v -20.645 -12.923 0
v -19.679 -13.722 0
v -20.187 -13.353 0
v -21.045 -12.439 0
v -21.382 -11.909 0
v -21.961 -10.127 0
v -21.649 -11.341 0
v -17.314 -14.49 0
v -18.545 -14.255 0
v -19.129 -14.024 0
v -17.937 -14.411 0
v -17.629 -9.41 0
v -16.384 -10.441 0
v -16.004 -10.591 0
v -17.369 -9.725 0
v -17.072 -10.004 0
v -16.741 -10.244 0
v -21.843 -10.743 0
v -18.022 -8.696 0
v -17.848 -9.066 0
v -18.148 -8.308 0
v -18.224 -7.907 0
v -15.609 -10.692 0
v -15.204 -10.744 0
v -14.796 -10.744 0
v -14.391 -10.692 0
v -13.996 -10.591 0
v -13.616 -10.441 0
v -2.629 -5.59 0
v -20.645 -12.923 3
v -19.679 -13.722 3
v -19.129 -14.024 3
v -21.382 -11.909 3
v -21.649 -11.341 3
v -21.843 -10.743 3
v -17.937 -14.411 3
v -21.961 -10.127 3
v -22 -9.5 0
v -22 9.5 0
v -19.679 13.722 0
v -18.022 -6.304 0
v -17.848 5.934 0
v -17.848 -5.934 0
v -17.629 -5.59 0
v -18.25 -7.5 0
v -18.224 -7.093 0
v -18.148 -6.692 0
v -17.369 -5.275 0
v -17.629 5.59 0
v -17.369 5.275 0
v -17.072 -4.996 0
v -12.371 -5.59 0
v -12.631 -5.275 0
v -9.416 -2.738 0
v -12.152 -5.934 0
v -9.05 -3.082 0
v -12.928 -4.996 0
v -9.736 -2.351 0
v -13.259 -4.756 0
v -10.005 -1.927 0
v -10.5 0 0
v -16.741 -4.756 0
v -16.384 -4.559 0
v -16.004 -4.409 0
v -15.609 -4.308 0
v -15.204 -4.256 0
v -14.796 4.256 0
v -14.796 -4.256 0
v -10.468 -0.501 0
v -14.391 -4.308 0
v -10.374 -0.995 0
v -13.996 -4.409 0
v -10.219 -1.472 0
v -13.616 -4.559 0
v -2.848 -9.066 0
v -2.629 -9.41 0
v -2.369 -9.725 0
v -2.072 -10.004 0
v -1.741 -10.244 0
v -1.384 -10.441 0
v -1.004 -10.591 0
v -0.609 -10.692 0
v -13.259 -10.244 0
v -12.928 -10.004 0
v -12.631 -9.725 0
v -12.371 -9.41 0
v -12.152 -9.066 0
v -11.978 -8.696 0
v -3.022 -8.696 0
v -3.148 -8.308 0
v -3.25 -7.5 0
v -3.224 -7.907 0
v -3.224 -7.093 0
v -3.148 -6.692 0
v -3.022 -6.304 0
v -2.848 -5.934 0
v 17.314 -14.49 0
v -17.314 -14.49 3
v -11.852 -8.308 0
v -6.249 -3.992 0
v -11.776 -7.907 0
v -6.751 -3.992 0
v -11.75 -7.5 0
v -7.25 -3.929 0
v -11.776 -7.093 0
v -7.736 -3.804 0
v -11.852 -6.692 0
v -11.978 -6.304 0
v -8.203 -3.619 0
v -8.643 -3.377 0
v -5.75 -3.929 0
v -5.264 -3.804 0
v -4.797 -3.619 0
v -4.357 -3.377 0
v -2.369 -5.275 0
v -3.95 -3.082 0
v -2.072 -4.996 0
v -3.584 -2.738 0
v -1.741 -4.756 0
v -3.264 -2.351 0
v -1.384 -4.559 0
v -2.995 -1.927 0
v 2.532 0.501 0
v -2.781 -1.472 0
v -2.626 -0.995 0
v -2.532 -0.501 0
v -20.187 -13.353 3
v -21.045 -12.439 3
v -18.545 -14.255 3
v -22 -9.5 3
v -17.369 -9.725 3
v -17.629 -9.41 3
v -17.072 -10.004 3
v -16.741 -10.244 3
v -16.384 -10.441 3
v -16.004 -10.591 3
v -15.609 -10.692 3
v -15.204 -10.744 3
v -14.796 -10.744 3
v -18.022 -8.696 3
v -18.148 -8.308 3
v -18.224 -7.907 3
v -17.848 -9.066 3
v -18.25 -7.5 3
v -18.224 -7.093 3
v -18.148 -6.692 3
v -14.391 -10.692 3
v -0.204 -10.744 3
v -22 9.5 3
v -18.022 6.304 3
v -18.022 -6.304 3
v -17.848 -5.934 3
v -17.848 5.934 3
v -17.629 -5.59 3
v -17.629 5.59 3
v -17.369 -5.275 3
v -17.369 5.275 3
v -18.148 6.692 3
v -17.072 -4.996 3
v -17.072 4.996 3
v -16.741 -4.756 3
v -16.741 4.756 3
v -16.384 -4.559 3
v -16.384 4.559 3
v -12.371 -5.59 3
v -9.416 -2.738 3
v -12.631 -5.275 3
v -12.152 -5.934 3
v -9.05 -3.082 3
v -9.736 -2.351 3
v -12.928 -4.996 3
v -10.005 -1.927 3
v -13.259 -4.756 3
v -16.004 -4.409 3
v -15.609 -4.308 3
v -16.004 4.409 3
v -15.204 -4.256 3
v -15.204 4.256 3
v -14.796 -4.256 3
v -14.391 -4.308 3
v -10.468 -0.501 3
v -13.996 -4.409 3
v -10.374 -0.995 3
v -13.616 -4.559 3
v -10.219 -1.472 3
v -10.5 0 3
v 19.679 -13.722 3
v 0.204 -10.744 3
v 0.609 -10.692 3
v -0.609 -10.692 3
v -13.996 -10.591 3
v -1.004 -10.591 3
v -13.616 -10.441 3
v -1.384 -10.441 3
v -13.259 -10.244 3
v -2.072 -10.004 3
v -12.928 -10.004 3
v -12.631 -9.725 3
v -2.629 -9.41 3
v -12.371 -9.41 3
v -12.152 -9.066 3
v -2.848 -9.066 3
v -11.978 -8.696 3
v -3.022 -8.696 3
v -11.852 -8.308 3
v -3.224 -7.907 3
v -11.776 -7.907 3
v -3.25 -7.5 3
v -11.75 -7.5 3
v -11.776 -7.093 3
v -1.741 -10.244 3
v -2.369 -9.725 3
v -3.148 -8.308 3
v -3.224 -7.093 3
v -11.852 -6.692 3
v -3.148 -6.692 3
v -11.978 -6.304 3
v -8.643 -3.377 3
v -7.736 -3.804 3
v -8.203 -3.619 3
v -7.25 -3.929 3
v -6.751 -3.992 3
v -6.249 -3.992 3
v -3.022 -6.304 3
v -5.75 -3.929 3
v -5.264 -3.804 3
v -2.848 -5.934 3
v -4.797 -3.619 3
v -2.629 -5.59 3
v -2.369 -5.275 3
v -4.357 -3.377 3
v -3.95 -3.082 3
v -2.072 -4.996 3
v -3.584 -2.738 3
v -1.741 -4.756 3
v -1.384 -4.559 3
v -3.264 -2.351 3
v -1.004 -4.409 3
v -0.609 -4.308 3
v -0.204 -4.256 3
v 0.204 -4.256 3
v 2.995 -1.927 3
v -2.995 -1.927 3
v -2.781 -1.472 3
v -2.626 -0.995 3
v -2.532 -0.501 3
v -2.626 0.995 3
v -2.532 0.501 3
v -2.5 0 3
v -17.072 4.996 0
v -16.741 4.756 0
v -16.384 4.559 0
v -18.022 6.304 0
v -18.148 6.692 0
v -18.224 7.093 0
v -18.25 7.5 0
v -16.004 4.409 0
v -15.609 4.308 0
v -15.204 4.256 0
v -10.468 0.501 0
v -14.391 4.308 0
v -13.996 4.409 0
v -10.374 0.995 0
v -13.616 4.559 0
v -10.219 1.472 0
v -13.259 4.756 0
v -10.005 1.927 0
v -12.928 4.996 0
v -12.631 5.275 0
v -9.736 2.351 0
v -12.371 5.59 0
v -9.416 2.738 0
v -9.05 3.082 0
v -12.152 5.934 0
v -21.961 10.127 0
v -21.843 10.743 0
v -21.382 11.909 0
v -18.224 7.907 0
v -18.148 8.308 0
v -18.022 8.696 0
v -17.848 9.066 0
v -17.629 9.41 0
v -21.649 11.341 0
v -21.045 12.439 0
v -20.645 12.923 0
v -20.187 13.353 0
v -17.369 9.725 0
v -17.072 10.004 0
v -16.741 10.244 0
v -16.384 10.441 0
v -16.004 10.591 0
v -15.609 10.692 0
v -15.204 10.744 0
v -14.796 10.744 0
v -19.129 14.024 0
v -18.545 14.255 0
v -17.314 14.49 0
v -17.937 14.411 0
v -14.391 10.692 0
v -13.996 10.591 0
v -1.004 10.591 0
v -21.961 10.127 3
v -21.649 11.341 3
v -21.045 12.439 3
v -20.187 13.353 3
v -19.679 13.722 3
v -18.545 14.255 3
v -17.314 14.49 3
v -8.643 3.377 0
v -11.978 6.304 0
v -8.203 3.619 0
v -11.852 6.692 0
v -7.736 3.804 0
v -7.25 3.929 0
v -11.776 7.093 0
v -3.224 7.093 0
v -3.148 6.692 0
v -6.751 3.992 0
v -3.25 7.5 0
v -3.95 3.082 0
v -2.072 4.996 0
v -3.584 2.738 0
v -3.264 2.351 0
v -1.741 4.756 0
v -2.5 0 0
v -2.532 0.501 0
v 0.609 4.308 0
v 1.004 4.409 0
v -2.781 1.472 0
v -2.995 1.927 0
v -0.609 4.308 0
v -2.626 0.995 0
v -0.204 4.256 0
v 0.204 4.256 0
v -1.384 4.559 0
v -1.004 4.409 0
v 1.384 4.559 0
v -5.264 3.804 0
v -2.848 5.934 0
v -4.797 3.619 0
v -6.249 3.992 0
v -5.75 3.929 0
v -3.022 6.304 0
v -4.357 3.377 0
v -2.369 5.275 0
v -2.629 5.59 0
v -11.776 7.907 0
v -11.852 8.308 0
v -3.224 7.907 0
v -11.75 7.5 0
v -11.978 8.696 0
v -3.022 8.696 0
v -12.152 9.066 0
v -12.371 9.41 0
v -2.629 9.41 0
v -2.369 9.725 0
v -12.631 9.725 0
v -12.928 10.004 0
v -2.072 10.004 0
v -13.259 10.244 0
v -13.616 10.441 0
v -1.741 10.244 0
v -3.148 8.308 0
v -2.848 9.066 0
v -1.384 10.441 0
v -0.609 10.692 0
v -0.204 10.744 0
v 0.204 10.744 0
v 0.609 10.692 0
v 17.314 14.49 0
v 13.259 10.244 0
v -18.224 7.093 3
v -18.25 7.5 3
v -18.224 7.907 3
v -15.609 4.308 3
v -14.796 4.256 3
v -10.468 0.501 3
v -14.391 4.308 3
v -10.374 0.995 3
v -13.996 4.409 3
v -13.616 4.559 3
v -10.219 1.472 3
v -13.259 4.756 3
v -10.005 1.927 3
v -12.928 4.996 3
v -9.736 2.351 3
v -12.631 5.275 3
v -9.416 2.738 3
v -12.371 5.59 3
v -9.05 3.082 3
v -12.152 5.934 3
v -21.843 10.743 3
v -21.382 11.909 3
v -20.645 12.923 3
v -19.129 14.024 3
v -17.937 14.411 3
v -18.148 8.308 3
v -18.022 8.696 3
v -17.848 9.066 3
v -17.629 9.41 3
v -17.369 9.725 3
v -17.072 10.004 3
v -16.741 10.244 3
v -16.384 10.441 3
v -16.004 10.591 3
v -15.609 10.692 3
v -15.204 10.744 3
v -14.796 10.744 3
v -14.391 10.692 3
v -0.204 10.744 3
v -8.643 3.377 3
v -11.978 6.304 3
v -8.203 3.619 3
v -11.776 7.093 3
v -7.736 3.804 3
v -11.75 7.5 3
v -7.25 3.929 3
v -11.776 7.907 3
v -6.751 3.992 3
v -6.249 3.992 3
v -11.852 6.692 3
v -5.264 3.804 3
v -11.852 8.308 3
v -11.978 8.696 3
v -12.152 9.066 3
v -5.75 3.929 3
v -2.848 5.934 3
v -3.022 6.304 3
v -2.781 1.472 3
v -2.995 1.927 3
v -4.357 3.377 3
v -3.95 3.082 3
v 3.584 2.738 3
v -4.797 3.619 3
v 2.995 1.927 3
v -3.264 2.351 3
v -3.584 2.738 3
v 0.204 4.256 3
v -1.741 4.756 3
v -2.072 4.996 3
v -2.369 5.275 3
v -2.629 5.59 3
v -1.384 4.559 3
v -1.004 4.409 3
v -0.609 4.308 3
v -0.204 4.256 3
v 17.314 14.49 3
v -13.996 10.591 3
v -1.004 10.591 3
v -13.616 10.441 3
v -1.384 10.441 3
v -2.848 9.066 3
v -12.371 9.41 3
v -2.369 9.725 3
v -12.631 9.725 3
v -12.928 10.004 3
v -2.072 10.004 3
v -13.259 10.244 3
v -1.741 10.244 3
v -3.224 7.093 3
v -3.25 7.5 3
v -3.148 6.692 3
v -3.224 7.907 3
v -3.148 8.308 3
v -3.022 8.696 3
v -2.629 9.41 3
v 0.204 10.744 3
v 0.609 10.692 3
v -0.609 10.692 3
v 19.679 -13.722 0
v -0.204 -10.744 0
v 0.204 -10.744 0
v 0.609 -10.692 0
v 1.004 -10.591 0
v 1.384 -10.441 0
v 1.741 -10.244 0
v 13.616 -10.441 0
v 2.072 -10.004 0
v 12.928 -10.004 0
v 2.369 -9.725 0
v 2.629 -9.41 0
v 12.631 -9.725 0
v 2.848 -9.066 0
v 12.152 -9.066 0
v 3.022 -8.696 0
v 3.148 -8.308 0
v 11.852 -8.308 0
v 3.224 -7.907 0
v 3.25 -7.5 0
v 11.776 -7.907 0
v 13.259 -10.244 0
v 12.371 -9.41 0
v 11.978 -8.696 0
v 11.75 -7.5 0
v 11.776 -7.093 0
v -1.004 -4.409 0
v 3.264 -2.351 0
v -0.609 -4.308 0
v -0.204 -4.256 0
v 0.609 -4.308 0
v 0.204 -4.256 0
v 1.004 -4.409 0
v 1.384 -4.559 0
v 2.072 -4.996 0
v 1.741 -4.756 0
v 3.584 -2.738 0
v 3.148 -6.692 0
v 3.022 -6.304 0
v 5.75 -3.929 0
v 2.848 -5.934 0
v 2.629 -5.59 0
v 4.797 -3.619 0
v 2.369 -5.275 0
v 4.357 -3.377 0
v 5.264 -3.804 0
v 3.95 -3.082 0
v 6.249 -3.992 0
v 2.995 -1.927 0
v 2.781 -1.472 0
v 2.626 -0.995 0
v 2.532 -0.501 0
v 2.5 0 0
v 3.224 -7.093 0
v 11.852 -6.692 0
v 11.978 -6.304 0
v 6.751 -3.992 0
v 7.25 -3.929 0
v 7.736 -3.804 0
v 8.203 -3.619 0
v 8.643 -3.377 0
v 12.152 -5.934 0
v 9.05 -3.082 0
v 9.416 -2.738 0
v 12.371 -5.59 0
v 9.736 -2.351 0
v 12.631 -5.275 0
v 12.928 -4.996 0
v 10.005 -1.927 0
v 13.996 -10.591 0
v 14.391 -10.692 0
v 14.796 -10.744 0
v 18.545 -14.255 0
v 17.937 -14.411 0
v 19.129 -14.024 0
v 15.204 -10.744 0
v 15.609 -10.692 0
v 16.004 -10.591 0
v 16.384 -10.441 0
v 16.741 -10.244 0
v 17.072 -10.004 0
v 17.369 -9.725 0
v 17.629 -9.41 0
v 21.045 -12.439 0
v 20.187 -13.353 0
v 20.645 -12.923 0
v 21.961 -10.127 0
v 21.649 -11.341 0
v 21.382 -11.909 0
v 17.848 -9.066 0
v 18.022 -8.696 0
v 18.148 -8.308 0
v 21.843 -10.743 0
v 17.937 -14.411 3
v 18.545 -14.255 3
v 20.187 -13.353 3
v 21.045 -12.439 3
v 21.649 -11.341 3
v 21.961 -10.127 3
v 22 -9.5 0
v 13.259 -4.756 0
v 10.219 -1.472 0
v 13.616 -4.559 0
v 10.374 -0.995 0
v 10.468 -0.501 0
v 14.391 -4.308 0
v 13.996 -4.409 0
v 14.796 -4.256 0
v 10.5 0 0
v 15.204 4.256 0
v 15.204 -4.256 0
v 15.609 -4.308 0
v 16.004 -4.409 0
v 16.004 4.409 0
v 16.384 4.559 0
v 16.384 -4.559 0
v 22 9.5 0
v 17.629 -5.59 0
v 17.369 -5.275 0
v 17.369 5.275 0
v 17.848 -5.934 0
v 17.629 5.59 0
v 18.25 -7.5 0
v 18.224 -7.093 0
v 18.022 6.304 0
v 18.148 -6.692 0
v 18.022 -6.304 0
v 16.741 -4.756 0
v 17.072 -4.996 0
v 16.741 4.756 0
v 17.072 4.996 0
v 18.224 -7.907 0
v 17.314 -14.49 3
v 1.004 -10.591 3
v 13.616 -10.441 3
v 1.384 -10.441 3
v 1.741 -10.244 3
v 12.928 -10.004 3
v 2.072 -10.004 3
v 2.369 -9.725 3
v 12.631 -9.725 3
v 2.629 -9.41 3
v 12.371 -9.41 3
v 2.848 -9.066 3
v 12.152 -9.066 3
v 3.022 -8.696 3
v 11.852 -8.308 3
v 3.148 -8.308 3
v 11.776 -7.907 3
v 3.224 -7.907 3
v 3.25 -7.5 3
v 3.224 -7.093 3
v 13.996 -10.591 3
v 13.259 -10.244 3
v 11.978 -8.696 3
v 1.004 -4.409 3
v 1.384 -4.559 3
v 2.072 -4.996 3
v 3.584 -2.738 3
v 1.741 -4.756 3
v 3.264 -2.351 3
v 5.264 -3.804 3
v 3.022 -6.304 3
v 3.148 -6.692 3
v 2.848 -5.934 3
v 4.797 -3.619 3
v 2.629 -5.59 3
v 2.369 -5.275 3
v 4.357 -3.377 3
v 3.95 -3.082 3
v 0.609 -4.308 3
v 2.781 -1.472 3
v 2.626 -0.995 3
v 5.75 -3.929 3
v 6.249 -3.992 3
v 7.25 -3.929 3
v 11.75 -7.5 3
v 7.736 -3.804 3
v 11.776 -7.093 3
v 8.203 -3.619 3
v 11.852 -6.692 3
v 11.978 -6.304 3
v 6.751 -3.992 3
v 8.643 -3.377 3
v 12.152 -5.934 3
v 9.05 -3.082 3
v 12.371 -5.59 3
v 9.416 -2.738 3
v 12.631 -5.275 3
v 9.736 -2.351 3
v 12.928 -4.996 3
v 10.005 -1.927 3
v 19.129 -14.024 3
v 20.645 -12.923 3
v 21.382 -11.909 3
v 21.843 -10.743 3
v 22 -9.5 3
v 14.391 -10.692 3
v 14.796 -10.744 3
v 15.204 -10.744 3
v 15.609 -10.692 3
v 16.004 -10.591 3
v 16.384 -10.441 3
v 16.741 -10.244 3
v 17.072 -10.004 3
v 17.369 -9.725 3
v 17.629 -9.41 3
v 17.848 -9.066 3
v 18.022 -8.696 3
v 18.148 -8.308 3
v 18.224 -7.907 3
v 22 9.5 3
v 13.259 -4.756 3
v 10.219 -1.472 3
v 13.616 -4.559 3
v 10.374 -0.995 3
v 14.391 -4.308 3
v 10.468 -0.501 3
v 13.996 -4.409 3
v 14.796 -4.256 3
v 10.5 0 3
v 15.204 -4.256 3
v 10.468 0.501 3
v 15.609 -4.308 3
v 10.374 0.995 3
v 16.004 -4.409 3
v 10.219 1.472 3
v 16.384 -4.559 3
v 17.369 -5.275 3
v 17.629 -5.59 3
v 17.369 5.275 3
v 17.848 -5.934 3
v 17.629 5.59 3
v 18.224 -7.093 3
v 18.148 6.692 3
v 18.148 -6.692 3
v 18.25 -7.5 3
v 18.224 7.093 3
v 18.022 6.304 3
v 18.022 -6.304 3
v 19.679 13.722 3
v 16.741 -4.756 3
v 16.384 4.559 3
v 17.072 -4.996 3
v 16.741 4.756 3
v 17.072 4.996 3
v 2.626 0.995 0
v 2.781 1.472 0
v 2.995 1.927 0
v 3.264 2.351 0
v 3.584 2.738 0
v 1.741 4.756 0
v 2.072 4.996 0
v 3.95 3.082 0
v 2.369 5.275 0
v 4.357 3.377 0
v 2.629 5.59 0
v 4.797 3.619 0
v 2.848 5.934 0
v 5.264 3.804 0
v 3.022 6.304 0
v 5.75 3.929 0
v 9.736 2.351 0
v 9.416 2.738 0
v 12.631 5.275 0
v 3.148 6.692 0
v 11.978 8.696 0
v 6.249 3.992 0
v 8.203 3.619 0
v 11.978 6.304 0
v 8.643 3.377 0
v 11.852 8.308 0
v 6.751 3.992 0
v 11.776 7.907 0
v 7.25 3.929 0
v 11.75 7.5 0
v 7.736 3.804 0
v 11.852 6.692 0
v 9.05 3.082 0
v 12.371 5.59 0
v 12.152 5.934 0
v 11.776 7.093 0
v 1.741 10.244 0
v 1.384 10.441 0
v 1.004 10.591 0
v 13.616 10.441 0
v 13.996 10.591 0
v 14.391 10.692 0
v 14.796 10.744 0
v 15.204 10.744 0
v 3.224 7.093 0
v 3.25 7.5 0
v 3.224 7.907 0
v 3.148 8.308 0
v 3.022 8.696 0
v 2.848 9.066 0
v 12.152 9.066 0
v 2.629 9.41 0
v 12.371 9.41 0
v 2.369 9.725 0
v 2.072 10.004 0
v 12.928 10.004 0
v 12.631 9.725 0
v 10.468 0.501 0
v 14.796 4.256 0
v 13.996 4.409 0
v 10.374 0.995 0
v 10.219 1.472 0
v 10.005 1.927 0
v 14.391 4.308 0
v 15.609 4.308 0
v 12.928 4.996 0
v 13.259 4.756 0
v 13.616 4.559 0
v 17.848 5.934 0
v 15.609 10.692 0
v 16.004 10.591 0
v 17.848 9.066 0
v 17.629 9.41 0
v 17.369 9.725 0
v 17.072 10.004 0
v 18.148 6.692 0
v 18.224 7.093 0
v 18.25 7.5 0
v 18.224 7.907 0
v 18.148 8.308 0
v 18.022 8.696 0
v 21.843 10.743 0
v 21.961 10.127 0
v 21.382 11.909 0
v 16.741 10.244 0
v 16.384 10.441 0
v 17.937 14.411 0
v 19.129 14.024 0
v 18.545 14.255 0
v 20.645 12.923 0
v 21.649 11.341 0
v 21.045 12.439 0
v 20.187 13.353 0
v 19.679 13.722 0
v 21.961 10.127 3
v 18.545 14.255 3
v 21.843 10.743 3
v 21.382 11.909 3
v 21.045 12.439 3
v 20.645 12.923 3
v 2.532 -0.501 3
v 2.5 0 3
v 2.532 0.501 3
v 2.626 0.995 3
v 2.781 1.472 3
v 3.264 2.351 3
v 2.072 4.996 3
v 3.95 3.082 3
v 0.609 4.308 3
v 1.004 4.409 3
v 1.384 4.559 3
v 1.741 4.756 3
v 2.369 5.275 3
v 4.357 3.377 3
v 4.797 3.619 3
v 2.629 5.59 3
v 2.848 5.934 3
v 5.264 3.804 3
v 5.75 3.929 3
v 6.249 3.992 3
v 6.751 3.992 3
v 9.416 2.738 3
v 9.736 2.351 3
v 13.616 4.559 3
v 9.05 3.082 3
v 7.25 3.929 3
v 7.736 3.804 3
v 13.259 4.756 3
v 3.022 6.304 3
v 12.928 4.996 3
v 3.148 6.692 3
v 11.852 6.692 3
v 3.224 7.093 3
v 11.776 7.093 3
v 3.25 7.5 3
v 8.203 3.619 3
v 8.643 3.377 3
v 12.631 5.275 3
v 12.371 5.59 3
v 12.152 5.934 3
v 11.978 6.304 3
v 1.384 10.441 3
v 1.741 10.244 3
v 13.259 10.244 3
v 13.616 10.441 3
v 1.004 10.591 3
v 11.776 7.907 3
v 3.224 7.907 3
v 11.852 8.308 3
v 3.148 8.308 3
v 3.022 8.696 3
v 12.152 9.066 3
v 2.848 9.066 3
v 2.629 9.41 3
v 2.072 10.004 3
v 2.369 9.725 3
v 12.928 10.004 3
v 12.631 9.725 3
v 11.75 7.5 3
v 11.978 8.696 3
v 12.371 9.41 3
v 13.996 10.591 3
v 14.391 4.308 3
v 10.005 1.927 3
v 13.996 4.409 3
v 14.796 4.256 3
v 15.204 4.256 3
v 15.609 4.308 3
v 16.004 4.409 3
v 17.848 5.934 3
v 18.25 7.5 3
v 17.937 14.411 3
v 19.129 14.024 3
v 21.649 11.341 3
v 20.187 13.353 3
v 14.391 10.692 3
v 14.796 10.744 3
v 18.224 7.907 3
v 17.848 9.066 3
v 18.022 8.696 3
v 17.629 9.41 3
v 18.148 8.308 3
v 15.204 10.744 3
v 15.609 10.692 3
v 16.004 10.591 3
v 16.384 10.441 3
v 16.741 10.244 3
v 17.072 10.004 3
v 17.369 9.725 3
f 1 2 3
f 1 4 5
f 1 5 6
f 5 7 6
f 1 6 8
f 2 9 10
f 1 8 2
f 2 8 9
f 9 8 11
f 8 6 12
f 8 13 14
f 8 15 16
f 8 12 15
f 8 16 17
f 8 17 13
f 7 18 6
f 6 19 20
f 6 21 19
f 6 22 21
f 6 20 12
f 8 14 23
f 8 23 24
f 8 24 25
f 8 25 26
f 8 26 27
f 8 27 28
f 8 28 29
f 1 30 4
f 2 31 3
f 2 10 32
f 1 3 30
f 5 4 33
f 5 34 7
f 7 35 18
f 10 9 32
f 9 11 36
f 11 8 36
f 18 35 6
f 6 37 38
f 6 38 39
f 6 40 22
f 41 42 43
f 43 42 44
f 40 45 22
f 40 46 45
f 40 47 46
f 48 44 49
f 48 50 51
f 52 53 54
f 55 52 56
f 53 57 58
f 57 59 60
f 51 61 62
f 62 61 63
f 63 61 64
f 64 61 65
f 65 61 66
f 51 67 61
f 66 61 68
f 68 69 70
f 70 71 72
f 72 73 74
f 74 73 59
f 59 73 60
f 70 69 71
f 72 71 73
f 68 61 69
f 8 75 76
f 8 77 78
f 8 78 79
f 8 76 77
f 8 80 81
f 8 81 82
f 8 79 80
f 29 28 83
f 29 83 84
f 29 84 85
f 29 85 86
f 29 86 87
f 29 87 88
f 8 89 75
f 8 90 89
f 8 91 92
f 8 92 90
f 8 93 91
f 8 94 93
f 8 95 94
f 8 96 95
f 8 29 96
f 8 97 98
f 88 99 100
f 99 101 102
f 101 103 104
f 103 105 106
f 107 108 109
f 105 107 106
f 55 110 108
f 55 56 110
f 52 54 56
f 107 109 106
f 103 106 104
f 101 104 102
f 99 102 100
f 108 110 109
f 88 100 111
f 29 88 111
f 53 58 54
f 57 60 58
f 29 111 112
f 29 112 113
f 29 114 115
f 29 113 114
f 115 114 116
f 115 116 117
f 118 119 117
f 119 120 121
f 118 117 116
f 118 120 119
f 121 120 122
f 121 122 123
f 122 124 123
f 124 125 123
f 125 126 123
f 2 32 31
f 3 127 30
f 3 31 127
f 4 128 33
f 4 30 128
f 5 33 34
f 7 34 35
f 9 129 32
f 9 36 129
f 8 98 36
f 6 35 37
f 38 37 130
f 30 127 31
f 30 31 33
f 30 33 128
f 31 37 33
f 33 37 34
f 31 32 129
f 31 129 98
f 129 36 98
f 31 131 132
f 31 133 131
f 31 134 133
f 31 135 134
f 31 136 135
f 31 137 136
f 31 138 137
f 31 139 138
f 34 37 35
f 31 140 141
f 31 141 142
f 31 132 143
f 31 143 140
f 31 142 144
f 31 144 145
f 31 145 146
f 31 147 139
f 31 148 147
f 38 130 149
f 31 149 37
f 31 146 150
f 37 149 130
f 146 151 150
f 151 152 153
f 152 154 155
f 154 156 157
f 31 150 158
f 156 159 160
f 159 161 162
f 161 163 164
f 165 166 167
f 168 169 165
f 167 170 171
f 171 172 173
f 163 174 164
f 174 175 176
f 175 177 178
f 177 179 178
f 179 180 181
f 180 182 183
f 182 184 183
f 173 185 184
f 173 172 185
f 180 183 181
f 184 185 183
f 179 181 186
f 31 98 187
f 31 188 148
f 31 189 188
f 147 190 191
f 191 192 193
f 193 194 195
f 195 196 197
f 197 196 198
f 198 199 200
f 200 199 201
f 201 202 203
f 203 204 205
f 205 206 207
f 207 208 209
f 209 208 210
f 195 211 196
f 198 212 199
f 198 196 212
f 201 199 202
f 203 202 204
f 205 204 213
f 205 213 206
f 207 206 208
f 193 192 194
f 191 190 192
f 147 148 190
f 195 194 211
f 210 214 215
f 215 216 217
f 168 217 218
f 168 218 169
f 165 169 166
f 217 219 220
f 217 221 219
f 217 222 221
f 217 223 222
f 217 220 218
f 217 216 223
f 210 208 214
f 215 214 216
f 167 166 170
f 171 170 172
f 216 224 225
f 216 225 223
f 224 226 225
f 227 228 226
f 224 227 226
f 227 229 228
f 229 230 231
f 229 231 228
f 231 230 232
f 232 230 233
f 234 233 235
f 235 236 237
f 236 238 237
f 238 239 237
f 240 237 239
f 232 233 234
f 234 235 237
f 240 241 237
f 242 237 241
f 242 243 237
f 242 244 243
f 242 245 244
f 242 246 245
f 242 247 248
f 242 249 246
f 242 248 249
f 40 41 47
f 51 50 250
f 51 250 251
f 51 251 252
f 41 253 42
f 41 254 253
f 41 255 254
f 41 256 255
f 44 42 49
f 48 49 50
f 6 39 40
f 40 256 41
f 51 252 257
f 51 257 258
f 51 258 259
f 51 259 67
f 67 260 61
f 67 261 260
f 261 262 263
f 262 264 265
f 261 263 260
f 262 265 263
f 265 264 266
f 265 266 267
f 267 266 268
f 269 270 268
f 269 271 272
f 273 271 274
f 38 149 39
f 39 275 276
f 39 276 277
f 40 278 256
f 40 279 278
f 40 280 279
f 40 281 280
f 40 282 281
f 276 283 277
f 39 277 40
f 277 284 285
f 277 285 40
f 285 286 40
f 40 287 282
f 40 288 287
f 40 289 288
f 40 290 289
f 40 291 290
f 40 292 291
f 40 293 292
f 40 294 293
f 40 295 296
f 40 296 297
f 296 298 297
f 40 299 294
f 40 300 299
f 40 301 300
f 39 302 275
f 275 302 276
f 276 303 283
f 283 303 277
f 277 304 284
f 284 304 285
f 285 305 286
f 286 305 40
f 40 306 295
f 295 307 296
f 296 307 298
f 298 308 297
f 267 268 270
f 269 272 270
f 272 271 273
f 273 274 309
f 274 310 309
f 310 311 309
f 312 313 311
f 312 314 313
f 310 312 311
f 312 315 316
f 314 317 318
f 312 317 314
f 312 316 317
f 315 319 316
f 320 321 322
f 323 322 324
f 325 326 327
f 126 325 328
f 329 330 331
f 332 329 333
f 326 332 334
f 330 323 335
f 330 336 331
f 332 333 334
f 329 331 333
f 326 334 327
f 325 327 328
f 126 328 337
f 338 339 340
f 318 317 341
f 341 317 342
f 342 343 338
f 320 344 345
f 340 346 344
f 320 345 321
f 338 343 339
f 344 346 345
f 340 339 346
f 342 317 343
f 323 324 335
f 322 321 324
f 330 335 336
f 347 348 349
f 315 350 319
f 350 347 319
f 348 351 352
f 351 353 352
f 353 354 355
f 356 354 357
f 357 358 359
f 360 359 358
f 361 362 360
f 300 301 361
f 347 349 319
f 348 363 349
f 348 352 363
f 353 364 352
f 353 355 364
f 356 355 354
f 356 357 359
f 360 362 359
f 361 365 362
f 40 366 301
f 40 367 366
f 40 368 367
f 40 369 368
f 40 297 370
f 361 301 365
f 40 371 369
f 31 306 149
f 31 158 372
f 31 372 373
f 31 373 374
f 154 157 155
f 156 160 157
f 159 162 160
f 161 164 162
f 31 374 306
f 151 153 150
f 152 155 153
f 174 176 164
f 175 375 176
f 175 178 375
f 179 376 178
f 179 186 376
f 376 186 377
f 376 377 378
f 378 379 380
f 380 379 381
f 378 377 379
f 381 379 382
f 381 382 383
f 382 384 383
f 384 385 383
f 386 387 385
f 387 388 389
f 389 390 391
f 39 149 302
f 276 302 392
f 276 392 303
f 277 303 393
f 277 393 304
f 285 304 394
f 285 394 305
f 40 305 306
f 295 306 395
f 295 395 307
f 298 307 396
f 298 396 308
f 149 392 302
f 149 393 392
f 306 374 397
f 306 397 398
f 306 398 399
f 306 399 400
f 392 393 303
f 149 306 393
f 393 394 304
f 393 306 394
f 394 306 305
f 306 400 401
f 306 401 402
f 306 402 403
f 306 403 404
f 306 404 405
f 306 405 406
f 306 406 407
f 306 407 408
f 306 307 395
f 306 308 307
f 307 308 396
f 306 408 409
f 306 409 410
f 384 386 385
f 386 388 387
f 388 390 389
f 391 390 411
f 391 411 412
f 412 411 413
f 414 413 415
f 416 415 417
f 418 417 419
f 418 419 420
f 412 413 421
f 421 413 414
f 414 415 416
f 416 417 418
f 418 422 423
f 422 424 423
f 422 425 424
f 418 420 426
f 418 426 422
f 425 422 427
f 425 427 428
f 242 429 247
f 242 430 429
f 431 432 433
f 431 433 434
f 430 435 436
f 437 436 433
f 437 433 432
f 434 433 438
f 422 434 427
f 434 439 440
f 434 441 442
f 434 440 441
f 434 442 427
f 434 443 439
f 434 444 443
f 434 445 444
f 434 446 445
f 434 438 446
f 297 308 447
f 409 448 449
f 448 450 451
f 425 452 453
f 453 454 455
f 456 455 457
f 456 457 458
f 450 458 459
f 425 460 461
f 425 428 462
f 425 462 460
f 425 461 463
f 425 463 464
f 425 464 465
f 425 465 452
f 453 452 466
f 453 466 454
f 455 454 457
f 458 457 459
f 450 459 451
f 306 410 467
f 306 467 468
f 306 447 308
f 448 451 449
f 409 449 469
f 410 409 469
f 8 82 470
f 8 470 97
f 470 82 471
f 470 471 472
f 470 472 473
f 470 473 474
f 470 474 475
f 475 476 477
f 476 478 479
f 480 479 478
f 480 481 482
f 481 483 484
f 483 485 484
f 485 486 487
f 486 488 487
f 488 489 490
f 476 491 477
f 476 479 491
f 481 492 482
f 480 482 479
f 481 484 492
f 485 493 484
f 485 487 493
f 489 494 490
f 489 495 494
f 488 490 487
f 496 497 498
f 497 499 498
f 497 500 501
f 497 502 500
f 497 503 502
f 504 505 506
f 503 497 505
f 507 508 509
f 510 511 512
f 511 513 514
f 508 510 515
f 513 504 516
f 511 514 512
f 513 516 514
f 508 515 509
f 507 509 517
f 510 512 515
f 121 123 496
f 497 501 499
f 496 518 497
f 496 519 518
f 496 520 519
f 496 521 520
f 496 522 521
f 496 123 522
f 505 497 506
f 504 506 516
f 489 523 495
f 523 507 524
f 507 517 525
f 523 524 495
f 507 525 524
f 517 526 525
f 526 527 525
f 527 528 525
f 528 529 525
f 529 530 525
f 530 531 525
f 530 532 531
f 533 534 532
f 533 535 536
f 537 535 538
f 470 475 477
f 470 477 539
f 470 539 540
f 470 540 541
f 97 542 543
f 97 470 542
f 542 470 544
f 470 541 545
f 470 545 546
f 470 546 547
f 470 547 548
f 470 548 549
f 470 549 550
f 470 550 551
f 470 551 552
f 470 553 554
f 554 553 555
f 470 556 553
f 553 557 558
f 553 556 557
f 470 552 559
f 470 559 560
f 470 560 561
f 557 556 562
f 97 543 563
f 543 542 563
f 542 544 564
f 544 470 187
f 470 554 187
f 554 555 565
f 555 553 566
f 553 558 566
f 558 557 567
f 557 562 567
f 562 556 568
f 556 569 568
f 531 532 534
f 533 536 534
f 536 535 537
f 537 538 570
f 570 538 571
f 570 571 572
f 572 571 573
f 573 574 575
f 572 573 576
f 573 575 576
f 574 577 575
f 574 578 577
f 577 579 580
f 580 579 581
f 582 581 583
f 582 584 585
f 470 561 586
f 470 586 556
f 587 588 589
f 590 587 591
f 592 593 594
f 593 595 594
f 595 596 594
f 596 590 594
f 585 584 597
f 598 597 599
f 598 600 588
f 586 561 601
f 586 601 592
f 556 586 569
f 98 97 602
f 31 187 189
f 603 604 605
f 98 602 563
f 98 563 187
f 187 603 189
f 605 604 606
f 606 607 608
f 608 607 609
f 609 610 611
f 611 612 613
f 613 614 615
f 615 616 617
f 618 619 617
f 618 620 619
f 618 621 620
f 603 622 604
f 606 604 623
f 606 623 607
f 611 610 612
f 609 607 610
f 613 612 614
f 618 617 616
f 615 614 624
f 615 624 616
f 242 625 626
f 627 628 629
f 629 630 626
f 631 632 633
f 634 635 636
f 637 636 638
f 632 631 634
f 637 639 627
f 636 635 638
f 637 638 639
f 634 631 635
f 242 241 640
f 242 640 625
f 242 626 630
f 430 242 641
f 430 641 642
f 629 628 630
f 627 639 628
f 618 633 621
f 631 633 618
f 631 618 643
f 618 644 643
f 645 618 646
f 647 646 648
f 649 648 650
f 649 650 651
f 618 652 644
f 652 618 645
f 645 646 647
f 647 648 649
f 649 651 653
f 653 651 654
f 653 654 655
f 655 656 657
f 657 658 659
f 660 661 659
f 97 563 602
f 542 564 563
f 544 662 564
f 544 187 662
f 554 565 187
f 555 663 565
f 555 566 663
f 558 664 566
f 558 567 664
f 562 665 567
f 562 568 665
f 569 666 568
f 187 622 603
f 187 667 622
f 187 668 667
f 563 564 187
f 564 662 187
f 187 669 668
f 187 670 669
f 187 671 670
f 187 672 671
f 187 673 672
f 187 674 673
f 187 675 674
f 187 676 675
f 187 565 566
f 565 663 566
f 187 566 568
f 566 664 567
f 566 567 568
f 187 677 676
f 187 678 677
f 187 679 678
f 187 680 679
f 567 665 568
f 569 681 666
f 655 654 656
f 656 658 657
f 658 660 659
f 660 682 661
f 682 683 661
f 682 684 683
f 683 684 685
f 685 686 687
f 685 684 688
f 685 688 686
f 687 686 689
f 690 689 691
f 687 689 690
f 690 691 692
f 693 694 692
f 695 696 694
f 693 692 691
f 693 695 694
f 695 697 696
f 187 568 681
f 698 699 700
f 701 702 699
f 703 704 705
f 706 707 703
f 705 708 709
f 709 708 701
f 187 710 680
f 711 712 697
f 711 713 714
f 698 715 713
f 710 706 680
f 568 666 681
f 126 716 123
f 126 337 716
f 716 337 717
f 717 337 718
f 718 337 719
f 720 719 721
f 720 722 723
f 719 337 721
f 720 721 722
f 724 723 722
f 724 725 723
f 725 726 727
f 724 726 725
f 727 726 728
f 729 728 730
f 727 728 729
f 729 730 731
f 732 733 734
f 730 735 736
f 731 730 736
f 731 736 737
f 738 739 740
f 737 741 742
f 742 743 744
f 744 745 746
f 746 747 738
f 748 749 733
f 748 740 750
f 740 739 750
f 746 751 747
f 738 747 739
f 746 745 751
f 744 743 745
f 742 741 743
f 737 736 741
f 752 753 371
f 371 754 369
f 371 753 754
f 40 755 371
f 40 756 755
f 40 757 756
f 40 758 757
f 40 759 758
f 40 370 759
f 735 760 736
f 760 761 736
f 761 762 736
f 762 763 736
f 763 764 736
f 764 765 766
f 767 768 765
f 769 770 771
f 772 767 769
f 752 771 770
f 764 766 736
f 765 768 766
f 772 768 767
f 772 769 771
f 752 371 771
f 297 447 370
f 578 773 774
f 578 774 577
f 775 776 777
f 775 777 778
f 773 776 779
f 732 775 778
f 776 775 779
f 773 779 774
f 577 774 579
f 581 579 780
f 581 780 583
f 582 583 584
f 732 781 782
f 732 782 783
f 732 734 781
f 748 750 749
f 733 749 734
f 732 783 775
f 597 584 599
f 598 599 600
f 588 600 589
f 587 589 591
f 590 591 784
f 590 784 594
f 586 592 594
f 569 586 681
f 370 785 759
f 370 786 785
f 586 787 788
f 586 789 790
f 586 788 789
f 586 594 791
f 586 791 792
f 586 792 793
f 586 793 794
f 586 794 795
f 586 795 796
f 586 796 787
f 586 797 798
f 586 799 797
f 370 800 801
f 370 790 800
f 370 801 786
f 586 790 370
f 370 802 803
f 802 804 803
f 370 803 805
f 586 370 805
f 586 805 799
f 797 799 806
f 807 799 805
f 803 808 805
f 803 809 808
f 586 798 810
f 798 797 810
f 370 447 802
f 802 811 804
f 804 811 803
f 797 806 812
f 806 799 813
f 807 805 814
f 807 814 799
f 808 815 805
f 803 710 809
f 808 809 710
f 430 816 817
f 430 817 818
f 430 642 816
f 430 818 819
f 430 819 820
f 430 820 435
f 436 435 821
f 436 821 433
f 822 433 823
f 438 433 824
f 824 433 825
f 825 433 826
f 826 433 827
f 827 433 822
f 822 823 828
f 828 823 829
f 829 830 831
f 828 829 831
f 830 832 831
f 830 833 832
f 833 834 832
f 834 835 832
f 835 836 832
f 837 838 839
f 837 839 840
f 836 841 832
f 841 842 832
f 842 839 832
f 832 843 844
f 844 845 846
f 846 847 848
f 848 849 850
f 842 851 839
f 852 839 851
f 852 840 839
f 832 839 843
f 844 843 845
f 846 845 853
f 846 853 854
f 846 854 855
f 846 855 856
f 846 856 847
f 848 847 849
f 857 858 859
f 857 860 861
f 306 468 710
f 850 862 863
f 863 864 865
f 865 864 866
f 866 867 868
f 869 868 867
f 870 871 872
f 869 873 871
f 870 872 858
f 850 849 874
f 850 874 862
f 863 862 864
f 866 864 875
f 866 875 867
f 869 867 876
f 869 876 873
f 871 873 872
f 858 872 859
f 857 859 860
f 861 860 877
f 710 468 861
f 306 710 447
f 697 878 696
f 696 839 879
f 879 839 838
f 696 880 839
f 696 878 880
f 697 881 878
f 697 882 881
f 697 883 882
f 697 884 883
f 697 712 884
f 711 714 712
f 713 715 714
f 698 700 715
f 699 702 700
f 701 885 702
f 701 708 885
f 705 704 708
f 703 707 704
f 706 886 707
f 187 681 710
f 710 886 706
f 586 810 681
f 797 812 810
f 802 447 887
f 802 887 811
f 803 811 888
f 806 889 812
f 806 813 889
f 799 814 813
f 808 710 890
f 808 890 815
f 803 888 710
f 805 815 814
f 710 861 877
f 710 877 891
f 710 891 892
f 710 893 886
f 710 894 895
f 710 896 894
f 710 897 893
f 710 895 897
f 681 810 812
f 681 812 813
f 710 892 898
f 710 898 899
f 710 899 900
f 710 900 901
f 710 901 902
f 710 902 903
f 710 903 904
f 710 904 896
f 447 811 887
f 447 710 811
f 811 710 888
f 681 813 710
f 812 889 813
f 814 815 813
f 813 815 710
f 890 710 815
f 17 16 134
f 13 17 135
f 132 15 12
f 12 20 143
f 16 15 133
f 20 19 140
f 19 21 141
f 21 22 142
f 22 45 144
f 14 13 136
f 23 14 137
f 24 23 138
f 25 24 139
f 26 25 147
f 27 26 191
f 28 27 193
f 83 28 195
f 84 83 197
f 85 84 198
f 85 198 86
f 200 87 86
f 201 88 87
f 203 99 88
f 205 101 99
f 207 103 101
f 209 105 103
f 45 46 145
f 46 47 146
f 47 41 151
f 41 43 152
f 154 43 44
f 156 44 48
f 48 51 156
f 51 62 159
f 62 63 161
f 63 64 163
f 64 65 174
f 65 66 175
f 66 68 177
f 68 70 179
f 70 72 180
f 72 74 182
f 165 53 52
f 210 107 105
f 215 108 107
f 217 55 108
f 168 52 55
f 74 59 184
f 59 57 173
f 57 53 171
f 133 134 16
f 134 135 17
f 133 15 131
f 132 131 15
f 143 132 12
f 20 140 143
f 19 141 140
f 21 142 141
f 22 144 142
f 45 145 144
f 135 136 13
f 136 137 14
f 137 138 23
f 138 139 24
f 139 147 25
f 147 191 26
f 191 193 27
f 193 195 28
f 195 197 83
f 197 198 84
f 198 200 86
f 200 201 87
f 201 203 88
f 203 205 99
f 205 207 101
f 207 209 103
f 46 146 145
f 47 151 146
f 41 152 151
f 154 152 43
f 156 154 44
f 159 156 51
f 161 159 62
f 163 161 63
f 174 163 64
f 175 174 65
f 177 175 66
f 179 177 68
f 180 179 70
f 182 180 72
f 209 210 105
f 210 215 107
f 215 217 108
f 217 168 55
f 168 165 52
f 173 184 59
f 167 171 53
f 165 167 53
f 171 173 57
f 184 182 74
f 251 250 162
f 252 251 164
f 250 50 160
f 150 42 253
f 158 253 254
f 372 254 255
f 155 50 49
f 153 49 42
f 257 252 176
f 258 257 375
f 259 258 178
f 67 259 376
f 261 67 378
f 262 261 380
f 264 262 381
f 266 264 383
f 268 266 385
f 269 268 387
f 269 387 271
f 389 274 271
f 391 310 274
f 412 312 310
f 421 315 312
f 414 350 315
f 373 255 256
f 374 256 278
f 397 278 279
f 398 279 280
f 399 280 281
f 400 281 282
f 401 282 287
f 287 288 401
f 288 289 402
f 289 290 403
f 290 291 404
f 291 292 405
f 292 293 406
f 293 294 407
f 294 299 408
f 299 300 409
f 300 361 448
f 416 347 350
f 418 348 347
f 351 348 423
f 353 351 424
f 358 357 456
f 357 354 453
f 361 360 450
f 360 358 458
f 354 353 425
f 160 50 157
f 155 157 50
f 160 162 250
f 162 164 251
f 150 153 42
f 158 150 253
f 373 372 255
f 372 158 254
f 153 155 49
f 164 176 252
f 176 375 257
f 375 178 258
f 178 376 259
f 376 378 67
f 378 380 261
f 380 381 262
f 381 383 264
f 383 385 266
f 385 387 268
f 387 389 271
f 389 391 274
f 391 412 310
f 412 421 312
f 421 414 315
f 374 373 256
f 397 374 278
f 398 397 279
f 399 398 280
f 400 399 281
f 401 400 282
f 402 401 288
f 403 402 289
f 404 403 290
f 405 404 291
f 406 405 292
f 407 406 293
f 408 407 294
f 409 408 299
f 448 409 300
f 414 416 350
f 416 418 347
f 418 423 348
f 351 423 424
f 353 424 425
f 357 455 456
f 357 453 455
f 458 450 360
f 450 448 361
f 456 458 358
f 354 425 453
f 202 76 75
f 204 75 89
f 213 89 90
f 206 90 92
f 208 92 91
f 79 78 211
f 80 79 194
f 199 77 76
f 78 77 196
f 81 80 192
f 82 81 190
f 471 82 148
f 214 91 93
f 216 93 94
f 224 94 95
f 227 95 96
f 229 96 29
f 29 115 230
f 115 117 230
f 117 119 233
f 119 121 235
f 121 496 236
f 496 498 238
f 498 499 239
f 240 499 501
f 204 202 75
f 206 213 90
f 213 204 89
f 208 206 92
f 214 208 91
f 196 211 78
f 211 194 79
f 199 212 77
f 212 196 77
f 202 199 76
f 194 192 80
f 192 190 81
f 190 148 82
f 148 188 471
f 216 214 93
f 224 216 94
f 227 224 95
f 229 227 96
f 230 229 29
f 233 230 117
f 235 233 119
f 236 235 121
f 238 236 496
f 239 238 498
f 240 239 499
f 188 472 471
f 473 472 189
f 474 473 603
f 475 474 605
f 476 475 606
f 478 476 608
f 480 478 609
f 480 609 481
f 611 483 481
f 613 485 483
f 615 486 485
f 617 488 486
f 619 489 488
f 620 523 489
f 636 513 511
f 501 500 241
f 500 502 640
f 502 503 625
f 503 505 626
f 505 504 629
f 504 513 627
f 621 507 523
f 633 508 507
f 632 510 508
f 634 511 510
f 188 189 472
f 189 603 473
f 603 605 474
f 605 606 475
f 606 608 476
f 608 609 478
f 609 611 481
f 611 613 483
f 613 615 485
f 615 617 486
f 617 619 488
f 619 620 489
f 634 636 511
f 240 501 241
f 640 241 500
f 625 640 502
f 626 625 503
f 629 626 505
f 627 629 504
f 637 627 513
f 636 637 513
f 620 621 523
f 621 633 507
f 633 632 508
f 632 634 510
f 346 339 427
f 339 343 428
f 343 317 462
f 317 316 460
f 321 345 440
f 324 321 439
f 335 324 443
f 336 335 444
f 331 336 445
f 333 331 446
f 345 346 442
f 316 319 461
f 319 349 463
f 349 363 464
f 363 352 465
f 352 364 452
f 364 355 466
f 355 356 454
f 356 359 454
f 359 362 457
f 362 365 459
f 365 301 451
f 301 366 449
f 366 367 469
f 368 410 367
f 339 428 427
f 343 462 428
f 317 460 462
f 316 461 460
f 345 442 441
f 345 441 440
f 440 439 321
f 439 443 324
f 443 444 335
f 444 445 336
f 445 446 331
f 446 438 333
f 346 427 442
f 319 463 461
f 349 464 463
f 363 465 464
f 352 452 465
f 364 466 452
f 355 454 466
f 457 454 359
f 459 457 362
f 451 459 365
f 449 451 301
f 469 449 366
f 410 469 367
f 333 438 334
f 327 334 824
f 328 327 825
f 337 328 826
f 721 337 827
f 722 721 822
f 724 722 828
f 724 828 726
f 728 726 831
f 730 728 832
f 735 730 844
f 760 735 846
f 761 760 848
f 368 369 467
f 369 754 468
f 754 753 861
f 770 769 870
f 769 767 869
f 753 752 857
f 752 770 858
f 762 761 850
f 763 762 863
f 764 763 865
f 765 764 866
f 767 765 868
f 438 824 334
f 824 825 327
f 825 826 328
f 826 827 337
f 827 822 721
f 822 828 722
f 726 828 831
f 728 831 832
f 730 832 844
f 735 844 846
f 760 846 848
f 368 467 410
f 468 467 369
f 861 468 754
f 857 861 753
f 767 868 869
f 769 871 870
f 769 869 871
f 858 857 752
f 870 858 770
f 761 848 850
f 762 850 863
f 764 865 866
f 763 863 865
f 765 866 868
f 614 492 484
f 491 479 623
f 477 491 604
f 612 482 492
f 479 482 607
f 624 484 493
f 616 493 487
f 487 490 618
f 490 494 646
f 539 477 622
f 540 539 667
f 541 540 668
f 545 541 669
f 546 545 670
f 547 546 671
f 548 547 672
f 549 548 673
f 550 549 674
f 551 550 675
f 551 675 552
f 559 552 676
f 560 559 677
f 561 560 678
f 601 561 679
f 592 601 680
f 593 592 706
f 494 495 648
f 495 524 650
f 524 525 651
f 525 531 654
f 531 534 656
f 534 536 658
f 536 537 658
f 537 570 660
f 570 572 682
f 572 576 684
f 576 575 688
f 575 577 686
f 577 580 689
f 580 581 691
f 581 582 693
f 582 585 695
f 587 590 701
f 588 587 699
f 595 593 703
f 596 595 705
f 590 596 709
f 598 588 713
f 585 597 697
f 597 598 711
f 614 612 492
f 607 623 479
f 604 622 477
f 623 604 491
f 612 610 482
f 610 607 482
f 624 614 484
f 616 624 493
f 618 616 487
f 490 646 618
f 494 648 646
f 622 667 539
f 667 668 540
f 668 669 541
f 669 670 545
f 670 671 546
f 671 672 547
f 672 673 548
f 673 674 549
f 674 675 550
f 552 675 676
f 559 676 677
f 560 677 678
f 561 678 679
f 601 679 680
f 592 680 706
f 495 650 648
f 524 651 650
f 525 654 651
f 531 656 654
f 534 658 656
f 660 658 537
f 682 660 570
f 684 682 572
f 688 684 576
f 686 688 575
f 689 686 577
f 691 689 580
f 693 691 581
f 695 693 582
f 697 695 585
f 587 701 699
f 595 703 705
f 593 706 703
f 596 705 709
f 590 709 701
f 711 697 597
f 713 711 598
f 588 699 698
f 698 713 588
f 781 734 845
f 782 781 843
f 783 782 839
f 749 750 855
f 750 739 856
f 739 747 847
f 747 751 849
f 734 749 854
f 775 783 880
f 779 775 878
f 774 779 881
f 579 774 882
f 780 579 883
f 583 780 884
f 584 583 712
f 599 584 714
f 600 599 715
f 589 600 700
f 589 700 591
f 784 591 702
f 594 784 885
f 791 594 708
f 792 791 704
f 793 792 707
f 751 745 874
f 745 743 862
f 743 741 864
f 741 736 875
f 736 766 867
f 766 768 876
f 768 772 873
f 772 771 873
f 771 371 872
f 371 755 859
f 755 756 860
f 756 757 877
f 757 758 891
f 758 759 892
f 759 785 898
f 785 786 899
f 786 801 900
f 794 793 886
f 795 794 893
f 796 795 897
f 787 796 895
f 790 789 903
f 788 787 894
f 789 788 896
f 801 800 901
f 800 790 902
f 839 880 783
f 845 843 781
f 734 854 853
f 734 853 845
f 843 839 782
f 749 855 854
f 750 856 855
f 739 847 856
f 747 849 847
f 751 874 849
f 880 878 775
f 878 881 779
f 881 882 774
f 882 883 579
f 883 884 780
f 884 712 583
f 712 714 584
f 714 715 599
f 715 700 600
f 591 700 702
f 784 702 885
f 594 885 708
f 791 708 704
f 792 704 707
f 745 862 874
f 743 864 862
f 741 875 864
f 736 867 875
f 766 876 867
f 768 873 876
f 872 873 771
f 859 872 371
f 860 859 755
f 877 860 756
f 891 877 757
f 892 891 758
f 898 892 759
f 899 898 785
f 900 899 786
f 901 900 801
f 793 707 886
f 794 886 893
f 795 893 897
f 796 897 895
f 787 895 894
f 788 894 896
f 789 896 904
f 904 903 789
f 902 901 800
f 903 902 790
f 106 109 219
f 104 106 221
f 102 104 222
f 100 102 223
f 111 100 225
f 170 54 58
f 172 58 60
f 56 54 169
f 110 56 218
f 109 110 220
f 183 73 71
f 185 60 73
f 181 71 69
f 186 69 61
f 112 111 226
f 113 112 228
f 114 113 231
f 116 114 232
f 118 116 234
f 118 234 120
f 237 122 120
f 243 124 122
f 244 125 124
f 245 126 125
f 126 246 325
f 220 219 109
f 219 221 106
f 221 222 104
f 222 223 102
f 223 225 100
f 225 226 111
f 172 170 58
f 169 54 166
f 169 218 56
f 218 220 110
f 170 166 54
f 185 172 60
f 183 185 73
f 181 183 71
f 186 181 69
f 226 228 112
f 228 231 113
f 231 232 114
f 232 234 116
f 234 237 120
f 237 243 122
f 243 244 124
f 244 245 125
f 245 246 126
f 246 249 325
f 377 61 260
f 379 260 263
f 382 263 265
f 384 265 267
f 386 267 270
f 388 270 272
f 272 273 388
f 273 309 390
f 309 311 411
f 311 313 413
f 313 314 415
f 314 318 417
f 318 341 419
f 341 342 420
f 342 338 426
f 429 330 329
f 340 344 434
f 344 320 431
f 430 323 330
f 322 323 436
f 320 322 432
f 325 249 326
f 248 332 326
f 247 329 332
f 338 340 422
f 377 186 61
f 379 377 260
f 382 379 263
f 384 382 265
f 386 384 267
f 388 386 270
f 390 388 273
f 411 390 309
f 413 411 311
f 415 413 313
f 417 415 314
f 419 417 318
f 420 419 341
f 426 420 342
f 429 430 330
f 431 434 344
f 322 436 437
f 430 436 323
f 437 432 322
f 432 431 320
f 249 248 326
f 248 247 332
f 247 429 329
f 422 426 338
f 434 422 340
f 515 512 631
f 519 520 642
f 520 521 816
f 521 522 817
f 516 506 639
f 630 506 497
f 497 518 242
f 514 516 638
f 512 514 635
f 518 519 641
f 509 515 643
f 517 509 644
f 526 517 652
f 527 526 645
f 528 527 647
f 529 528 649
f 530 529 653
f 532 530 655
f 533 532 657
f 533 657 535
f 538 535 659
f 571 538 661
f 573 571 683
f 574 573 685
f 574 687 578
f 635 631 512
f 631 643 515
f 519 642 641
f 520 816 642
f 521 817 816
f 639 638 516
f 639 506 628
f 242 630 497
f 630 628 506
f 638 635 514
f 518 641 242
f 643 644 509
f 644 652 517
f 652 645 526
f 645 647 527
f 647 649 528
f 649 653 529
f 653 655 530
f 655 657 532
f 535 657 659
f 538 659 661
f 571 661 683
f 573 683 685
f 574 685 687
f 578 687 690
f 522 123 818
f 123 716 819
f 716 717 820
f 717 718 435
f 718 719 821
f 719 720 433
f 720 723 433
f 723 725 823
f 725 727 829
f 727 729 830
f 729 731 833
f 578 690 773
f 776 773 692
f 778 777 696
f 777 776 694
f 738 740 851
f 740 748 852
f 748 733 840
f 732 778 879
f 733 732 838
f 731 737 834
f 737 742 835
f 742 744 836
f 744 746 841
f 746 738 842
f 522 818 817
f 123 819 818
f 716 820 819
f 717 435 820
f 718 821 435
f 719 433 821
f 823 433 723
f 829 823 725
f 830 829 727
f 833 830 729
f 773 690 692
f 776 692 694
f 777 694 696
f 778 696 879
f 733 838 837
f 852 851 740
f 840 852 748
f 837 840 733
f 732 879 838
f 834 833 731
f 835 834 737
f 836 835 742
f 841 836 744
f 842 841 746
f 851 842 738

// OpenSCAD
$fn = 50;

difference() {
	union() {
		hull() {
			translate(v = [-17.0, 9.5, 0]) {
				cylinder(h = 3, r = 5);
			}
			translate(v = [17.0, 9.5, 0]) {
				cylinder(h = 3, r = 5);
			}
			translate(v = [-17.0, -9.5, 0]) {
				cylinder(h = 3, r = 5);
			}
			translate(v = [17.0, -9.5, 0]) {
				cylinder(h = 3, r = 5);
			}
		}
	}
	union() {
		translate(v = [-15.0, -7.5, 0]) {
			cylinder(h = 3, r = 3.25);
		}
		translate(v = [-15.0, 7.5, 0]) {
			cylinder(h = 3, r = 3.25);
		}
		translate(v = [0.0, -7.5, 0]) {
			cylinder(h = 3, r = 3.25);
		}
		translate(v = [0.0, 7.5, 0]) {
			cylinder(h = 3, r = 3.25);
		}
		translate(v = [15.0, -7.5, 0]) {
			cylinder(h = 3, r = 3.25);
		}
		translate(v = [15.0, 7.5, 0]) {
			cylinder(h = 3, r = 3.25);
		}
		translate(v = [-6.5, 0, 0.0]) {
			cylinder(h = 3, r = 4.0);
		}
		translate(v = [6.5, 0, 0.0]) {
			cylinder(h = 3, r = 4.0);
		}
	}
}
